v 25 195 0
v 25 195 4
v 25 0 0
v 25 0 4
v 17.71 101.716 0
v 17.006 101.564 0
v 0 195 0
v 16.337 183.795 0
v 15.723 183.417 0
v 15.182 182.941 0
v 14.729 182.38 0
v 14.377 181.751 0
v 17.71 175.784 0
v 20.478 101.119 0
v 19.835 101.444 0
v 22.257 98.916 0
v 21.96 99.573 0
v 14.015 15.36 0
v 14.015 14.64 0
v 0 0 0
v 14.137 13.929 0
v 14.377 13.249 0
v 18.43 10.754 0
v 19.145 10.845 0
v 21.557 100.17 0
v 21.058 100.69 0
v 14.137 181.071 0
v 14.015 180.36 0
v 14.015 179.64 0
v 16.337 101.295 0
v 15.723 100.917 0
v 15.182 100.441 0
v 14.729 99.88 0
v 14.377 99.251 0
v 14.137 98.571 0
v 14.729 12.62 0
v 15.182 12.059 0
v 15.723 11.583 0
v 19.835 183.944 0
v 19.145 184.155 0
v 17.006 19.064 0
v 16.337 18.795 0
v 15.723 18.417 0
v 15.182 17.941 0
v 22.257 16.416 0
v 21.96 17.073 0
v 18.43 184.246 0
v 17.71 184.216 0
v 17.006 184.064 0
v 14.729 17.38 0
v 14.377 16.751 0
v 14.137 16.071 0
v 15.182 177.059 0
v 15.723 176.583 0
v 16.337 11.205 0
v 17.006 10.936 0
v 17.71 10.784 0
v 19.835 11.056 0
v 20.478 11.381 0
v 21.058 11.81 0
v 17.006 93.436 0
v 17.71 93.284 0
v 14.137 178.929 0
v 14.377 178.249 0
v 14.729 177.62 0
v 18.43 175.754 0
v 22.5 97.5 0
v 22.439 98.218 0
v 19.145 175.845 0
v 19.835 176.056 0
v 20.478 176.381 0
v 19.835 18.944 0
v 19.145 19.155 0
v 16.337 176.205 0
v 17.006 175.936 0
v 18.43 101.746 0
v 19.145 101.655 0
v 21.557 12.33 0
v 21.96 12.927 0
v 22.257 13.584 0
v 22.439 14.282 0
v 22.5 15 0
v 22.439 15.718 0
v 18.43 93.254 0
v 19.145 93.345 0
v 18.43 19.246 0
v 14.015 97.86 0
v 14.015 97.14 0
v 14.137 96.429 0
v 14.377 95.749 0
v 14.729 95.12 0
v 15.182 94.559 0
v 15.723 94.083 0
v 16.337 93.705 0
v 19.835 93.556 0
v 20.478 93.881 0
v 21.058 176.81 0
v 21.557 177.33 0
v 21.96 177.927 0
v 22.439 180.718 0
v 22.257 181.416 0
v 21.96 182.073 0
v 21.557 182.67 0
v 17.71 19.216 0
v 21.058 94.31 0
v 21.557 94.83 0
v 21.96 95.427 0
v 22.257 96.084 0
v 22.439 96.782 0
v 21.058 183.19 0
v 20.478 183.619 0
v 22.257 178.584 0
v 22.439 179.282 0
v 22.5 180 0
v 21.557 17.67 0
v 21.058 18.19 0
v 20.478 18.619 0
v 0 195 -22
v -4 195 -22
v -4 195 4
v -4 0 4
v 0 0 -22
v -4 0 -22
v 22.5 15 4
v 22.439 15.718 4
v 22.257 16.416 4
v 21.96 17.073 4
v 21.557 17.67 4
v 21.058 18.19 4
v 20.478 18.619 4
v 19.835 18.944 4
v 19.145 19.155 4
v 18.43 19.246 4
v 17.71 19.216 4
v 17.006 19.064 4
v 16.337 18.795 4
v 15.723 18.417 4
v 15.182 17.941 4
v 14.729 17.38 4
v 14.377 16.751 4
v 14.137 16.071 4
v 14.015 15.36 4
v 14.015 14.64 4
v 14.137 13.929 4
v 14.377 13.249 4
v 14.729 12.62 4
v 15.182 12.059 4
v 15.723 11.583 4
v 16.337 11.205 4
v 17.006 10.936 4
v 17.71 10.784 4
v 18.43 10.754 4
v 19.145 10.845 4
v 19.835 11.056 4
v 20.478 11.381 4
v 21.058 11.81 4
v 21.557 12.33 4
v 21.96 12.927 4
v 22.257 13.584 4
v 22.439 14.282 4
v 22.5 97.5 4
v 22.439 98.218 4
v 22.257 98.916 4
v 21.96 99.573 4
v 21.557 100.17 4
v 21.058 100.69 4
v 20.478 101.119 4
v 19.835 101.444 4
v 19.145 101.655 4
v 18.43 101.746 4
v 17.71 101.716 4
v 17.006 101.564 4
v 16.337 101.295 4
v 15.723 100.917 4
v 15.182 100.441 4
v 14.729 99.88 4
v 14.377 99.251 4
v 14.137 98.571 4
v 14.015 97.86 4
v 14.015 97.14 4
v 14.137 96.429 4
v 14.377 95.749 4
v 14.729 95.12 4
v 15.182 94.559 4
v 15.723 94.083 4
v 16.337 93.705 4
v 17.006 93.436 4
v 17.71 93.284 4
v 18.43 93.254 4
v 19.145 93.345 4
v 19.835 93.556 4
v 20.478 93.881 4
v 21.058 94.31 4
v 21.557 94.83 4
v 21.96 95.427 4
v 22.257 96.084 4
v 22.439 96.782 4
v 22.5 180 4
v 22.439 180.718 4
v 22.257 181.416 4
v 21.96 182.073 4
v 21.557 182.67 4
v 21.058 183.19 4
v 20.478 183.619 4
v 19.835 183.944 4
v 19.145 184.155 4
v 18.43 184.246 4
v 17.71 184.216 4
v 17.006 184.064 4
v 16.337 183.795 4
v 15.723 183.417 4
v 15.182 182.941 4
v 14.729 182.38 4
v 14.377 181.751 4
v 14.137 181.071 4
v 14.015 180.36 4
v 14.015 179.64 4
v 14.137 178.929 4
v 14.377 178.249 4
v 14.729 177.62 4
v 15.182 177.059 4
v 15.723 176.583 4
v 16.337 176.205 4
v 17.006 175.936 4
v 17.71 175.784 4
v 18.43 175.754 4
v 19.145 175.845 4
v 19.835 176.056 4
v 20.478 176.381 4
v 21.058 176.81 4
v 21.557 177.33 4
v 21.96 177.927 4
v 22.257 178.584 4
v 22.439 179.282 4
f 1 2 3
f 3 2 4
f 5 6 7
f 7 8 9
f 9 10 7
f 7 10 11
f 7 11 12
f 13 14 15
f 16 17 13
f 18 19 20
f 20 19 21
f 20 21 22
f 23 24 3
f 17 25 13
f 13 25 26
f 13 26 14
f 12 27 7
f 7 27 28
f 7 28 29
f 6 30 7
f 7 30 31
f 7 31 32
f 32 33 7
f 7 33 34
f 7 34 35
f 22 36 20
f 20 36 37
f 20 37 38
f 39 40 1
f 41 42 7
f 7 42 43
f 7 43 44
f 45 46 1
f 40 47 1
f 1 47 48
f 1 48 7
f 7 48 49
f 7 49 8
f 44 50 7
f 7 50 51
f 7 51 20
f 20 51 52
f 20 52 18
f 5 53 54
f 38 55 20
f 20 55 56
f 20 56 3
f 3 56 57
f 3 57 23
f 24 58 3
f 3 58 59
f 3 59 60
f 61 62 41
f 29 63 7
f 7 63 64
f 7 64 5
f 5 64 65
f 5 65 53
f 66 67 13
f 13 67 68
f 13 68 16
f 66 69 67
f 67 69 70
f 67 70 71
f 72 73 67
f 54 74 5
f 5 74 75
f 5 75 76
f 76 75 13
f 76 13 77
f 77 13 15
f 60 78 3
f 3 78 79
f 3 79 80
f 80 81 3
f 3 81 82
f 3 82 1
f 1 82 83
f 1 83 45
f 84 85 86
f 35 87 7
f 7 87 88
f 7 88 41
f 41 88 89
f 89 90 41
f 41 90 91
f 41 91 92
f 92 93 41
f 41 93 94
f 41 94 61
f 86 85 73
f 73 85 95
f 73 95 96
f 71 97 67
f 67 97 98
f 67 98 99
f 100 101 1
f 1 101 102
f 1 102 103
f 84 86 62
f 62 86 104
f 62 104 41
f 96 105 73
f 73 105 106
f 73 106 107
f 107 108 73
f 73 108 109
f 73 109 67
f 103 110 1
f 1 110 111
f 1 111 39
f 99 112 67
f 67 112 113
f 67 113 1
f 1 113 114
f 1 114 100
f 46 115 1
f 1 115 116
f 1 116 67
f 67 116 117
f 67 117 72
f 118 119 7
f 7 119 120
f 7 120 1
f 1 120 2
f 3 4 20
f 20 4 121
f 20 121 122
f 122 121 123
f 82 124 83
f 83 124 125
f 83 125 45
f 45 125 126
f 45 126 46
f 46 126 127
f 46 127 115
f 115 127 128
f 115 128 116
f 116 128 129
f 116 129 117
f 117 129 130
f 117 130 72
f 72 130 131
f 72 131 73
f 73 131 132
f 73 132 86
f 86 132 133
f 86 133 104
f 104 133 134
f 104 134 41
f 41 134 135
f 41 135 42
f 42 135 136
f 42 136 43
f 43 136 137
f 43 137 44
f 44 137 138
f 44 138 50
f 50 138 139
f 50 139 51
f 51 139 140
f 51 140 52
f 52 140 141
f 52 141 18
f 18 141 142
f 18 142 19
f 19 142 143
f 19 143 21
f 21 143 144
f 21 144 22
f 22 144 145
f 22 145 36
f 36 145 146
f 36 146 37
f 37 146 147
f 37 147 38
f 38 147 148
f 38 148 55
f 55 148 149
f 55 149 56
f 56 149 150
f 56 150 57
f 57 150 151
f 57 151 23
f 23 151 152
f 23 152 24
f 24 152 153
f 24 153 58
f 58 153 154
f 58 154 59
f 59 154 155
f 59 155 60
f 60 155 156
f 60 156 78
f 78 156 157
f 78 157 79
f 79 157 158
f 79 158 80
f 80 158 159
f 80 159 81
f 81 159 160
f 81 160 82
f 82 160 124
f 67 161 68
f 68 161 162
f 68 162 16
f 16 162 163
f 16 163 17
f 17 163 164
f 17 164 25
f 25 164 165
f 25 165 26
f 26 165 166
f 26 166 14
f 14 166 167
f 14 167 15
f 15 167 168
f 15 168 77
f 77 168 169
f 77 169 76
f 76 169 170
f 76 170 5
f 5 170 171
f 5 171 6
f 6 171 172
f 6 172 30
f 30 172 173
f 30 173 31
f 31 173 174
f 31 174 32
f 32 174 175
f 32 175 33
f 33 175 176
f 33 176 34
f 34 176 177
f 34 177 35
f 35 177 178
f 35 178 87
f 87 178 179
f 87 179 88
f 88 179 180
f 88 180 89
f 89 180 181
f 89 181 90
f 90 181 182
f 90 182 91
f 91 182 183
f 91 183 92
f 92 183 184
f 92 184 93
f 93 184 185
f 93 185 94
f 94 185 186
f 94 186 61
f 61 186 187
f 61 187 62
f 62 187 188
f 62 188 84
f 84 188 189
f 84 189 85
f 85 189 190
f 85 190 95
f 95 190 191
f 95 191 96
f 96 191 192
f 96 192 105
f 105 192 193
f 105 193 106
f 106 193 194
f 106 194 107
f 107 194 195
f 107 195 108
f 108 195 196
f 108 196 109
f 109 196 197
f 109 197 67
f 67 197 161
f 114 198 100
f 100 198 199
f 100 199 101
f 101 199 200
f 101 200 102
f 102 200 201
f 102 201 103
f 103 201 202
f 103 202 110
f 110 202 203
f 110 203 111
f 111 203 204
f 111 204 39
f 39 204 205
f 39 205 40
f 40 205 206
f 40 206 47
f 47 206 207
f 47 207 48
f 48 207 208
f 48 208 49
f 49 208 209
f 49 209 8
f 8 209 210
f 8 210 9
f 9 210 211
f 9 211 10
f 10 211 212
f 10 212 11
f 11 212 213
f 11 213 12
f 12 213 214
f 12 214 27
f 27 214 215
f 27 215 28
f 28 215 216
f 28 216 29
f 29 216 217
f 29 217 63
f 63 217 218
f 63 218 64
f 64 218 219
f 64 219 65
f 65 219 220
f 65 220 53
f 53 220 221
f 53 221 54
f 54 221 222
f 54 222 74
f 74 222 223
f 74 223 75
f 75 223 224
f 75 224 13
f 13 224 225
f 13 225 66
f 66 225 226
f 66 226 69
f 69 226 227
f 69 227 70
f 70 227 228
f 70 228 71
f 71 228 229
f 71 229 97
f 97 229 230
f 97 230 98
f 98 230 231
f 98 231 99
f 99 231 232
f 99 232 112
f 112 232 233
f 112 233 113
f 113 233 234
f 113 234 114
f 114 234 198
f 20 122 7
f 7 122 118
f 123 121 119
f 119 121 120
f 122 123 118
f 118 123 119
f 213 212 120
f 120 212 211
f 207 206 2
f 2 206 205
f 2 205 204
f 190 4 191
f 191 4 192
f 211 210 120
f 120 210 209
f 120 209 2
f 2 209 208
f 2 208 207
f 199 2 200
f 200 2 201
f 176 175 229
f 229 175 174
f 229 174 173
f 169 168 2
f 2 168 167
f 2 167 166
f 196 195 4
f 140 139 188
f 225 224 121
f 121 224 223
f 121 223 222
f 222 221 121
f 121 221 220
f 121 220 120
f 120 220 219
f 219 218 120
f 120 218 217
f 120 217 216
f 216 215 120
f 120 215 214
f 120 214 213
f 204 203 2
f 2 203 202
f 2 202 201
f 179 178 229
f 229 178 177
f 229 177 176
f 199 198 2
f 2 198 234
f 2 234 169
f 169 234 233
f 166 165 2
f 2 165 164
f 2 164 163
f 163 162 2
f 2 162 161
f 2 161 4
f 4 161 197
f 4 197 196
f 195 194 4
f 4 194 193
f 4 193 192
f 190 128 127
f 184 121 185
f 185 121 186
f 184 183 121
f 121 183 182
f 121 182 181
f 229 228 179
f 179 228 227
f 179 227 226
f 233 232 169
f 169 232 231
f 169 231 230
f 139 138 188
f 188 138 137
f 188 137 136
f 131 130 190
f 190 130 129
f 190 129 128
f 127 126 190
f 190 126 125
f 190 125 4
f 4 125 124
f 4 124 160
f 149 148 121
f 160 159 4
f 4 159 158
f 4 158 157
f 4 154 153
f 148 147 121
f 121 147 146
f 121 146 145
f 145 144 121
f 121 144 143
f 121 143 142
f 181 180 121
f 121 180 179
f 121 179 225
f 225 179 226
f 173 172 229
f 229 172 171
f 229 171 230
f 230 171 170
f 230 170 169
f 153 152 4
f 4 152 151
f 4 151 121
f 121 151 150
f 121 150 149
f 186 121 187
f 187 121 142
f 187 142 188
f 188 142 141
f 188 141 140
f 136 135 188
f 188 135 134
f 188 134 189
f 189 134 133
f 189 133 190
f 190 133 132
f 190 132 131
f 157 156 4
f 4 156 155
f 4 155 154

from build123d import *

# Parameters (mm, degrees)
CROQUIS1_W              = 25
CROQUIS1_H              = 3
SALIENTE_EXTRUIR1_DEPTH = 195
CROQUIS2_R              = 4.25
CORTAR_EXTRUIR1_DEPTH   = 195
CROQUIS3_W              = 4
CROQUIS3_H              = 25
SALIENTE_EXTRUIR2_DEPTH = 195
SALIENTE_EXTRUIR3_START = 1
CROQUIS4_W              = 29
CROQUIS4_H              = 195
CROQUIS4_R              = 4.25
SALIENTE_EXTRUIR3_DEPTH = 1


with BuildPart() as part:
    # Croquis1 → Saliente-Extruir1 (new body)
    with BuildSketch(Plane(origin=(0, 0, 0), x_dir=(1, 0, 0), z_dir=(0, 1, 0))):
        with Locations((12.5, -1.5)):
            Rectangle(CROQUIS1_W, CROQUIS1_H)
    extrude(amount=SALIENTE_EXTRUIR1_DEPTH)

    # Croquis2 → Cortar-Extruir1 (cut)
    with BuildSketch(Plane.XY.offset(3)):
        with Locations((18.25, 180)):
            Circle(CROQUIS2_R)
        with Locations((18.25, 97.5)):
            Circle(CROQUIS2_R)
        with Locations((18.25, 15)):
            Circle(CROQUIS2_R)
    extrude(amount=-CORTAR_EXTRUIR1_DEPTH, mode=Mode.SUBTRACT)

    # Croquis3 → Saliente-Extruir2 (add)
    with BuildSketch(Plane(origin=(0, 195, 0), x_dir=(1, 0, 0), z_dir=(0, 1, 0))):
        with Locations((-2, 9.5)):
            Rectangle(CROQUIS3_W, CROQUIS3_H)
    extrude(amount=-SALIENTE_EXTRUIR2_DEPTH)

    # Croquis4 → Saliente-Extruir3 (add)
    with BuildSketch(Plane.XY.offset(3).offset(SALIENTE_EXTRUIR3_START)):
        with Locations((10.5, 97.5)):
            Rectangle(CROQUIS4_W, CROQUIS4_H)
        with Locations((18.25, 15)):
            Circle(CROQUIS4_R, mode=Mode.SUBTRACT)
        with Locations((18.25, 97.5)):
            Circle(CROQUIS4_R, mode=Mode.SUBTRACT)
        with Locations((18.25, 180)):
            Circle(CROQUIS4_R, mode=Mode.SUBTRACT)
    extrude(amount=-SALIENTE_EXTRUIR3_DEPTH)


solid = part.part
